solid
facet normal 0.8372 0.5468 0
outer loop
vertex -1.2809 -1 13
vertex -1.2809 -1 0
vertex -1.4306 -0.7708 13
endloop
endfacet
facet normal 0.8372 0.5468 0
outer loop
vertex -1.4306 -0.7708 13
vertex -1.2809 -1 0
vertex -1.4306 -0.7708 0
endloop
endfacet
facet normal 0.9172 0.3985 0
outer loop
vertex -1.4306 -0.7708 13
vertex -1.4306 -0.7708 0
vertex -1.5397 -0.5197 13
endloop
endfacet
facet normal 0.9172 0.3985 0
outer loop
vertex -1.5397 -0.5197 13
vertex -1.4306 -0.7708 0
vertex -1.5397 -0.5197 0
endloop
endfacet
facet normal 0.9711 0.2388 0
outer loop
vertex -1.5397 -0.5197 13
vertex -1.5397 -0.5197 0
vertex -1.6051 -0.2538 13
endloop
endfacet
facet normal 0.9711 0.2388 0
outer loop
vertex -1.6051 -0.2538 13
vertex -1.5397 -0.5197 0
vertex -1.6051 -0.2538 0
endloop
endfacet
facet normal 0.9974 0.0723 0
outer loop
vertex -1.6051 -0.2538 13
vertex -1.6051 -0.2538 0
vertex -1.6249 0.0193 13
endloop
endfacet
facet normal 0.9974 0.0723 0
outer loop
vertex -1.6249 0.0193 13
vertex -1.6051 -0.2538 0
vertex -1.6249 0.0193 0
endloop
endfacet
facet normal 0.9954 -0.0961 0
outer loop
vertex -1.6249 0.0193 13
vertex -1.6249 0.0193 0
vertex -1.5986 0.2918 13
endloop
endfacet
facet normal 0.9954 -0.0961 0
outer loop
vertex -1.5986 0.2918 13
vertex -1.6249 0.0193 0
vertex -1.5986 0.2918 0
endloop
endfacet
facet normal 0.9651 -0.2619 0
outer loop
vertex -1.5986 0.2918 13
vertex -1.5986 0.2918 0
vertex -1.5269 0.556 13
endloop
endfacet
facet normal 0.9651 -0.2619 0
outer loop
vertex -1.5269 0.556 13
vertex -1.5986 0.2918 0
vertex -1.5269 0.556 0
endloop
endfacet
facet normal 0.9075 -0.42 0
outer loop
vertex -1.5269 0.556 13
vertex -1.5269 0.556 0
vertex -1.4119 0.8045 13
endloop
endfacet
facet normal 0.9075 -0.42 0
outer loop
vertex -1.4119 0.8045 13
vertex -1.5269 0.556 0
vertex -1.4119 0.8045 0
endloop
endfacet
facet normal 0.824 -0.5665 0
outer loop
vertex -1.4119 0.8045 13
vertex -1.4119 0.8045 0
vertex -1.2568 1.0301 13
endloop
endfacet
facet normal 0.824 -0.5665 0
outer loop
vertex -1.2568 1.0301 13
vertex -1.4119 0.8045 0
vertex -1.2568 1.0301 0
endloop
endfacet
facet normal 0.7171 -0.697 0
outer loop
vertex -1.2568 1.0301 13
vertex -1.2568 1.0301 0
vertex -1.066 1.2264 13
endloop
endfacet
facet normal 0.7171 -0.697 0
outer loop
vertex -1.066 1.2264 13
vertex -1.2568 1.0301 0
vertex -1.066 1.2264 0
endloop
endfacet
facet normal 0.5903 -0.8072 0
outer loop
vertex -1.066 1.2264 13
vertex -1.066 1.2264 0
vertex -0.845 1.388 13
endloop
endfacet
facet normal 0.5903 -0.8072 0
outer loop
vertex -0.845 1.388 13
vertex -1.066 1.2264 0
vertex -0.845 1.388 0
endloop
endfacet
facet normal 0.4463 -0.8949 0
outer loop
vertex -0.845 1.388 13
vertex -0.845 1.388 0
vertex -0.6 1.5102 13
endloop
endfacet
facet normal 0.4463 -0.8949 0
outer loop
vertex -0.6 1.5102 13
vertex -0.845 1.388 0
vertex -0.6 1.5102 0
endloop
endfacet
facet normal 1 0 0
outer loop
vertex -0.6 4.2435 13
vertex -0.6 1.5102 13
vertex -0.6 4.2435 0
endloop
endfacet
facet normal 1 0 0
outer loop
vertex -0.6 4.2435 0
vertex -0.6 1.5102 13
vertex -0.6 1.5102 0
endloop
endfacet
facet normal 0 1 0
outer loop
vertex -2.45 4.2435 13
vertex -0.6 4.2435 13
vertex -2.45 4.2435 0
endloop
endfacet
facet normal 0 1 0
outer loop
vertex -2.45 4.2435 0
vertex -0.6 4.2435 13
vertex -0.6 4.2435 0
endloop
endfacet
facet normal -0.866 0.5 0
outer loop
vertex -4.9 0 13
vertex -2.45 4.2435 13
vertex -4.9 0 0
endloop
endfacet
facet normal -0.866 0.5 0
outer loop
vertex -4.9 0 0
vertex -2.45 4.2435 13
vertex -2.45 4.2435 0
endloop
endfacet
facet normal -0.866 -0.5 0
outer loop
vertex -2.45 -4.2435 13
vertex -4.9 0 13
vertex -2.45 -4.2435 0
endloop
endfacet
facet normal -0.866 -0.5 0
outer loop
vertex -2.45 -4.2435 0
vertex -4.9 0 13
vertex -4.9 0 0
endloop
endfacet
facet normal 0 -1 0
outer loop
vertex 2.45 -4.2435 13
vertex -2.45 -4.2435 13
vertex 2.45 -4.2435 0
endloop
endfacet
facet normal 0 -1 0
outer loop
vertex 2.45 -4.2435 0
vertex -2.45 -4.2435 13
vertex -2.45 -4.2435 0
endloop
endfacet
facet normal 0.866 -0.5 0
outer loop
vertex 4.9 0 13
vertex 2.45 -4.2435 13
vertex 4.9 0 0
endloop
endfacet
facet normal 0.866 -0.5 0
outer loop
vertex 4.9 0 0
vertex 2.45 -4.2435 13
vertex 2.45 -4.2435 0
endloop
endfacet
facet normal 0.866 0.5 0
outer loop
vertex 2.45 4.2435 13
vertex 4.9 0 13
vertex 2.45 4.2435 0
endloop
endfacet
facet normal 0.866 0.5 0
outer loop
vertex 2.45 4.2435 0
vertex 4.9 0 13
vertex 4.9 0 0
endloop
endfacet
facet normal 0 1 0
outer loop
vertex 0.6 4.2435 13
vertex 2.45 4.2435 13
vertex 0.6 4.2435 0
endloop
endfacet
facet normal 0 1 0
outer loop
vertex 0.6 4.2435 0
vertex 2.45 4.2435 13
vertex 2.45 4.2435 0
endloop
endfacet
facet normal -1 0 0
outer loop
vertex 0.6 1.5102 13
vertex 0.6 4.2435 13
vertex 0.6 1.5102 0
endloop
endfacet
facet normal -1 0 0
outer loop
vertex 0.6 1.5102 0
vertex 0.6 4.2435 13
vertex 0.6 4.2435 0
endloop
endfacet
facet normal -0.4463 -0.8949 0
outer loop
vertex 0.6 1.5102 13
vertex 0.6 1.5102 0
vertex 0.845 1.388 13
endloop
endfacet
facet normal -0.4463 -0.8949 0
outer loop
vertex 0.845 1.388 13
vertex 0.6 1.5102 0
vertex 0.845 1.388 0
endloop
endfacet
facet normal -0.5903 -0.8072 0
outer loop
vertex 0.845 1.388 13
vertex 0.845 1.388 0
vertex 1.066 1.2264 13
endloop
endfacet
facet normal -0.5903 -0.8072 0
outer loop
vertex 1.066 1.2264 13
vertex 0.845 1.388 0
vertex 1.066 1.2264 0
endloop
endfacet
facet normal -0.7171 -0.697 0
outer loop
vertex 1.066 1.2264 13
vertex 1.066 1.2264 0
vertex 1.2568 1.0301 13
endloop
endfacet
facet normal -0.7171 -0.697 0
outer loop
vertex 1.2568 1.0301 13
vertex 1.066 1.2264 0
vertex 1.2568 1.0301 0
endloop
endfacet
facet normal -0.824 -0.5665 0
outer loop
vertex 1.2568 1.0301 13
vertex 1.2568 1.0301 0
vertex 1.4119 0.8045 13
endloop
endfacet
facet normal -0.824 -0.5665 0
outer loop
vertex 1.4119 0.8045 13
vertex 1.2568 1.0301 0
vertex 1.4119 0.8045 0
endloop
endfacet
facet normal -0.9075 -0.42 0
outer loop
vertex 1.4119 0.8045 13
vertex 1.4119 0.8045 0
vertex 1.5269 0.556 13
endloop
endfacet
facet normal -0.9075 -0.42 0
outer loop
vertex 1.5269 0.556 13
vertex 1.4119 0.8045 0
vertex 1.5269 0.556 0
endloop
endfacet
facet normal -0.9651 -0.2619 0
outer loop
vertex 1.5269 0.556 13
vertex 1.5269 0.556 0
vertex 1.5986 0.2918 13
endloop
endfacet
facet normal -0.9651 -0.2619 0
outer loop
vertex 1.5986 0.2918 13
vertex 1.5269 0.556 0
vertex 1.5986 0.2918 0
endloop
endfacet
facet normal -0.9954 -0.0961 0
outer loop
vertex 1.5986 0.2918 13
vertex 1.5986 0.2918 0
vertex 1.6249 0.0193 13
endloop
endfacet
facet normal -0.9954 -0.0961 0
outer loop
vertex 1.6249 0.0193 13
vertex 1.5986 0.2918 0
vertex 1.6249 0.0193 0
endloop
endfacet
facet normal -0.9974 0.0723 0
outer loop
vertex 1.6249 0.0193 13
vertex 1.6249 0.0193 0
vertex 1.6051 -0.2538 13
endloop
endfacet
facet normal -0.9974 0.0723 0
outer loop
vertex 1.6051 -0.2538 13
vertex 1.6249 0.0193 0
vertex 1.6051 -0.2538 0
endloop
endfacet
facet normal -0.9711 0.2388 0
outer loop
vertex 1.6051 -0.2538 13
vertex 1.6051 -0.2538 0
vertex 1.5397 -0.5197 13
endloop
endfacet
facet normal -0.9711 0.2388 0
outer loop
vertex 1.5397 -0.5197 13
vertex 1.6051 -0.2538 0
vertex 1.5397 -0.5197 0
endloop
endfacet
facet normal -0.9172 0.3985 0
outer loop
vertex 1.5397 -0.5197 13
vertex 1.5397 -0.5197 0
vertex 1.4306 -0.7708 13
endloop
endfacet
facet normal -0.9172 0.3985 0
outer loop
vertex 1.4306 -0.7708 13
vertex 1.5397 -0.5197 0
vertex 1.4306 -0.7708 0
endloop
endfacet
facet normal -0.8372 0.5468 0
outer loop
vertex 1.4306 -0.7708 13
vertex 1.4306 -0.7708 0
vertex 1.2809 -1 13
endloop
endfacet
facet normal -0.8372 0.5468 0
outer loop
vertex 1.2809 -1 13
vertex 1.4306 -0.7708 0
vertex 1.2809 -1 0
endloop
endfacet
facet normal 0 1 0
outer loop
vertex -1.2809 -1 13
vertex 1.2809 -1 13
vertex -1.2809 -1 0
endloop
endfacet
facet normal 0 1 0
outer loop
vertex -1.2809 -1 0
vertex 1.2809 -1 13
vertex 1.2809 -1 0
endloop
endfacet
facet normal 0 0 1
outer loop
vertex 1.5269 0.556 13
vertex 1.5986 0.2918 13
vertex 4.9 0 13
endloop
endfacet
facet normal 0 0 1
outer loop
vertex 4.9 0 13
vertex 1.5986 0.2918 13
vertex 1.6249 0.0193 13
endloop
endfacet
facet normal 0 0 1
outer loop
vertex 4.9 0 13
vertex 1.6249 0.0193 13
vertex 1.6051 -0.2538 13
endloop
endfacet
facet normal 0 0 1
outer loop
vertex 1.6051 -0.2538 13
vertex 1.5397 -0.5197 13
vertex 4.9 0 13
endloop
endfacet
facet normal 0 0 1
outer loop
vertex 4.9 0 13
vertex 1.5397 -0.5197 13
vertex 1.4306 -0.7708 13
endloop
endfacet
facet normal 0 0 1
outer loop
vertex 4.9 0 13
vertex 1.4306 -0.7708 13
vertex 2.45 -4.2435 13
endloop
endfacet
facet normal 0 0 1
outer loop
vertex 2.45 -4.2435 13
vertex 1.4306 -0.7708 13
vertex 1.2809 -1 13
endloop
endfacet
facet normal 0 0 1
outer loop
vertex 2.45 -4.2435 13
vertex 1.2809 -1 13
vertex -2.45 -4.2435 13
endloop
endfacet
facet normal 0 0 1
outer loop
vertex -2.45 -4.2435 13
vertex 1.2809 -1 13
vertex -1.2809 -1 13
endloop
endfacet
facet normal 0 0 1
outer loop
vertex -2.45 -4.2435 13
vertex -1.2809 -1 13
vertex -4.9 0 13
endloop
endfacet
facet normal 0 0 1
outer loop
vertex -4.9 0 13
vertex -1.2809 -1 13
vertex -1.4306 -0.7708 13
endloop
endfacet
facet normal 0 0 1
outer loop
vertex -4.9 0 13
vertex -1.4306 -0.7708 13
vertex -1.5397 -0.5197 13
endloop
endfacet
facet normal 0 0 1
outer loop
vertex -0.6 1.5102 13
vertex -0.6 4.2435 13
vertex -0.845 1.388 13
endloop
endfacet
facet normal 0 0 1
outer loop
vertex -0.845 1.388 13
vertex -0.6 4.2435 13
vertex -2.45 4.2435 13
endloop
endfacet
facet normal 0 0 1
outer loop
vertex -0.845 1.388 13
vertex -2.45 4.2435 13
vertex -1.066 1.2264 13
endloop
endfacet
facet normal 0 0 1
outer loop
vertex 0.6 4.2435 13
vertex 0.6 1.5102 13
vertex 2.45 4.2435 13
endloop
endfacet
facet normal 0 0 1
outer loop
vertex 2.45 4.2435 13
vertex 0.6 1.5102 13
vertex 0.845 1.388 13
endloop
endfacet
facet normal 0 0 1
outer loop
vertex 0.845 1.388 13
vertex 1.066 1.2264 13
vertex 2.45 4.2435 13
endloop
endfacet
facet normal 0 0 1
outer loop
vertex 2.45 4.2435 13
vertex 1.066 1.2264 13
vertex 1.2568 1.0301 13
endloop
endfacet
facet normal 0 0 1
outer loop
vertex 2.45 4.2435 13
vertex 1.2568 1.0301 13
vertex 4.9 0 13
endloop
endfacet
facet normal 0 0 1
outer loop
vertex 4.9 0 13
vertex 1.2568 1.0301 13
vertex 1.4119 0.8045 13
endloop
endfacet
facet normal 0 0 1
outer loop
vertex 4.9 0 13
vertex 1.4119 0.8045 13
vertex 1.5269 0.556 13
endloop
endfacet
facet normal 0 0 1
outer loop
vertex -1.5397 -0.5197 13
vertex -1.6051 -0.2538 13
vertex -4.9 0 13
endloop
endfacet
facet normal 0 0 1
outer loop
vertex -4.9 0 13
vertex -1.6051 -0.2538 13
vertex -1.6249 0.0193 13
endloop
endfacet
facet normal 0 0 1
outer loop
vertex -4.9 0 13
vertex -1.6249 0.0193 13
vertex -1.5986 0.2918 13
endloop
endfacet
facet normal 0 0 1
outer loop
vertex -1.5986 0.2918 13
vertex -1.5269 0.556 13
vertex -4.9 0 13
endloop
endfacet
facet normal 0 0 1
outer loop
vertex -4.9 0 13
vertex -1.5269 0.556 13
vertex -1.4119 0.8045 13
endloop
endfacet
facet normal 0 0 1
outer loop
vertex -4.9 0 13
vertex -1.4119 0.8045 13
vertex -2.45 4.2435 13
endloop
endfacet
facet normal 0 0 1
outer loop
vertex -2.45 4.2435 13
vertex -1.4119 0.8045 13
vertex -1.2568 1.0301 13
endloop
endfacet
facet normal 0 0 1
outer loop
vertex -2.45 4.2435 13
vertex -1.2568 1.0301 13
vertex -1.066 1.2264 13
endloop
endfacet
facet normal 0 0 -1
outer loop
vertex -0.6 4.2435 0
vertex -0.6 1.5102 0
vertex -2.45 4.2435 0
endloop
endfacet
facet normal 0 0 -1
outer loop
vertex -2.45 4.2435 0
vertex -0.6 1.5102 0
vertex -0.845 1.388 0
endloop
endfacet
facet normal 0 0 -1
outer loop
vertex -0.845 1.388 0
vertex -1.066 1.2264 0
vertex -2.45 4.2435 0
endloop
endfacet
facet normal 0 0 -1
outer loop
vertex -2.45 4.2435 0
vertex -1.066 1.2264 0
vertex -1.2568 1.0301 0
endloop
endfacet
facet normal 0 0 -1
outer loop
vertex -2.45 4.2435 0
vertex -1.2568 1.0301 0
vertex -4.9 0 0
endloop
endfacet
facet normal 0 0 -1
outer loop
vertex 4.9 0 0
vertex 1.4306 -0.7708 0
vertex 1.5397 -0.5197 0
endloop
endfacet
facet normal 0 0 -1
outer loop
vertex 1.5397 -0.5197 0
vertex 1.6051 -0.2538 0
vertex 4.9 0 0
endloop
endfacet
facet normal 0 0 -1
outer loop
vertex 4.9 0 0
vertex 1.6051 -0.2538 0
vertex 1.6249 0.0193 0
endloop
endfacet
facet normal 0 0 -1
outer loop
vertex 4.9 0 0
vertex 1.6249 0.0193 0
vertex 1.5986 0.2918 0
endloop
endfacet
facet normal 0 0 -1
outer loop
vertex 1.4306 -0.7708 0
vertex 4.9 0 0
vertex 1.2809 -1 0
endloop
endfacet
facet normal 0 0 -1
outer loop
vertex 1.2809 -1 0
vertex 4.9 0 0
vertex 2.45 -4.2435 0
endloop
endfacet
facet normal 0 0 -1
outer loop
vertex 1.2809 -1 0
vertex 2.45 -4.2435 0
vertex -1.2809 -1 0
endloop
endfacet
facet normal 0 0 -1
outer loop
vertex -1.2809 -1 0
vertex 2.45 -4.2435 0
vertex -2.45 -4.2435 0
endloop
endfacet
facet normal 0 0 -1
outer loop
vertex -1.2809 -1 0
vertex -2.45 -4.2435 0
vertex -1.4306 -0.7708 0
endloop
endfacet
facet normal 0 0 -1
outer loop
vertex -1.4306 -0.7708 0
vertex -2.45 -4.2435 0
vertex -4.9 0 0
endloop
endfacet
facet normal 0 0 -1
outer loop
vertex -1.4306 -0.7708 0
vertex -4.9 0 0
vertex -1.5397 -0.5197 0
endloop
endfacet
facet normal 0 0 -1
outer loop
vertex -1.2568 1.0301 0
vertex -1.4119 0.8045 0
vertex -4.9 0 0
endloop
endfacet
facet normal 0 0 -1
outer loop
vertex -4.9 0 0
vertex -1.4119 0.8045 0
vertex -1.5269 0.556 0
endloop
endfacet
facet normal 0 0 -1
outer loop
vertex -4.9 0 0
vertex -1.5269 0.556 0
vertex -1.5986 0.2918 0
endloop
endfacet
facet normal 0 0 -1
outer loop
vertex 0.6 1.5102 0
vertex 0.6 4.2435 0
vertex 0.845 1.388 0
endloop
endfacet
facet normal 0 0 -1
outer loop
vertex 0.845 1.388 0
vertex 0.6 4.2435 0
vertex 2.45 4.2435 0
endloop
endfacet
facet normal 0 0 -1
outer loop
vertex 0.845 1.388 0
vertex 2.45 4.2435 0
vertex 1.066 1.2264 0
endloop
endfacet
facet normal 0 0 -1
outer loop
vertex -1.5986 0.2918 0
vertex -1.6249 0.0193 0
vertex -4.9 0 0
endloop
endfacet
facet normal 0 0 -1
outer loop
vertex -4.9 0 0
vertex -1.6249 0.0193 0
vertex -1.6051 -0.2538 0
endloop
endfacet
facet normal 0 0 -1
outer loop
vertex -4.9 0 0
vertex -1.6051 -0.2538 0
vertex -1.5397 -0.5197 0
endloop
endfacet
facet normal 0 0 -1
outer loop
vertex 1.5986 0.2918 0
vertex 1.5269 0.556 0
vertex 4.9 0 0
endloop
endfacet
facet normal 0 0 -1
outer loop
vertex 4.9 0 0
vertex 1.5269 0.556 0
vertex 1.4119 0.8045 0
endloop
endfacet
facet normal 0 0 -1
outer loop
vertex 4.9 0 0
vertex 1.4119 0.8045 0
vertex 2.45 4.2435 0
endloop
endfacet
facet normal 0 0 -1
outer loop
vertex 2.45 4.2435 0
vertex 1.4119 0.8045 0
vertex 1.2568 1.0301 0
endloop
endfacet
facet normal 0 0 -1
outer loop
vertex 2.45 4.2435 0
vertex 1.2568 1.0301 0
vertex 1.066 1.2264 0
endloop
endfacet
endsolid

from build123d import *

# Parameters (mm, degrees)
BOSS_EXTRUDE1_DEPTH = 13


with BuildPart() as part:
    # Sketch1 → Boss-Extrude1 (new body)
    with BuildSketch(Plane.XY):
        with BuildLine():
            Line((1.280868846, -1), (-1.280868846, -1))
            ThreePointArc((-1.280868846, -1), (-1.568330344, 0.425399731), (-0.6, 1.510173831))
            Line((-0.6, 1.510173831), (-0.6, 4.243524479))
            Line((-0.6, 4.243524479), (-2.45, 4.243524479))
            Line((-2.45, 4.243524479), (-4.9, 0))
            Line((-4.9, 0), (-2.45, -4.243524479))
            Line((-2.45, -4.243524479), (2.45, -4.243524479))
            Line((2.45, -4.243524479), (4.9, 0))
            Line((4.9, 0), (2.45, 4.243524479))
            Line((2.45, 4.243524479), (0.6, 4.243524479))
            Line((0.6, 4.243524479), (0.6, 1.510173831))
            ThreePointArc((0.6, 1.510173831), (1.568330344, 0.425399731), (1.280868846, -1))
        make_face()
    extrude(amount=BOSS_EXTRUDE1_DEPTH)


solid = part.part
